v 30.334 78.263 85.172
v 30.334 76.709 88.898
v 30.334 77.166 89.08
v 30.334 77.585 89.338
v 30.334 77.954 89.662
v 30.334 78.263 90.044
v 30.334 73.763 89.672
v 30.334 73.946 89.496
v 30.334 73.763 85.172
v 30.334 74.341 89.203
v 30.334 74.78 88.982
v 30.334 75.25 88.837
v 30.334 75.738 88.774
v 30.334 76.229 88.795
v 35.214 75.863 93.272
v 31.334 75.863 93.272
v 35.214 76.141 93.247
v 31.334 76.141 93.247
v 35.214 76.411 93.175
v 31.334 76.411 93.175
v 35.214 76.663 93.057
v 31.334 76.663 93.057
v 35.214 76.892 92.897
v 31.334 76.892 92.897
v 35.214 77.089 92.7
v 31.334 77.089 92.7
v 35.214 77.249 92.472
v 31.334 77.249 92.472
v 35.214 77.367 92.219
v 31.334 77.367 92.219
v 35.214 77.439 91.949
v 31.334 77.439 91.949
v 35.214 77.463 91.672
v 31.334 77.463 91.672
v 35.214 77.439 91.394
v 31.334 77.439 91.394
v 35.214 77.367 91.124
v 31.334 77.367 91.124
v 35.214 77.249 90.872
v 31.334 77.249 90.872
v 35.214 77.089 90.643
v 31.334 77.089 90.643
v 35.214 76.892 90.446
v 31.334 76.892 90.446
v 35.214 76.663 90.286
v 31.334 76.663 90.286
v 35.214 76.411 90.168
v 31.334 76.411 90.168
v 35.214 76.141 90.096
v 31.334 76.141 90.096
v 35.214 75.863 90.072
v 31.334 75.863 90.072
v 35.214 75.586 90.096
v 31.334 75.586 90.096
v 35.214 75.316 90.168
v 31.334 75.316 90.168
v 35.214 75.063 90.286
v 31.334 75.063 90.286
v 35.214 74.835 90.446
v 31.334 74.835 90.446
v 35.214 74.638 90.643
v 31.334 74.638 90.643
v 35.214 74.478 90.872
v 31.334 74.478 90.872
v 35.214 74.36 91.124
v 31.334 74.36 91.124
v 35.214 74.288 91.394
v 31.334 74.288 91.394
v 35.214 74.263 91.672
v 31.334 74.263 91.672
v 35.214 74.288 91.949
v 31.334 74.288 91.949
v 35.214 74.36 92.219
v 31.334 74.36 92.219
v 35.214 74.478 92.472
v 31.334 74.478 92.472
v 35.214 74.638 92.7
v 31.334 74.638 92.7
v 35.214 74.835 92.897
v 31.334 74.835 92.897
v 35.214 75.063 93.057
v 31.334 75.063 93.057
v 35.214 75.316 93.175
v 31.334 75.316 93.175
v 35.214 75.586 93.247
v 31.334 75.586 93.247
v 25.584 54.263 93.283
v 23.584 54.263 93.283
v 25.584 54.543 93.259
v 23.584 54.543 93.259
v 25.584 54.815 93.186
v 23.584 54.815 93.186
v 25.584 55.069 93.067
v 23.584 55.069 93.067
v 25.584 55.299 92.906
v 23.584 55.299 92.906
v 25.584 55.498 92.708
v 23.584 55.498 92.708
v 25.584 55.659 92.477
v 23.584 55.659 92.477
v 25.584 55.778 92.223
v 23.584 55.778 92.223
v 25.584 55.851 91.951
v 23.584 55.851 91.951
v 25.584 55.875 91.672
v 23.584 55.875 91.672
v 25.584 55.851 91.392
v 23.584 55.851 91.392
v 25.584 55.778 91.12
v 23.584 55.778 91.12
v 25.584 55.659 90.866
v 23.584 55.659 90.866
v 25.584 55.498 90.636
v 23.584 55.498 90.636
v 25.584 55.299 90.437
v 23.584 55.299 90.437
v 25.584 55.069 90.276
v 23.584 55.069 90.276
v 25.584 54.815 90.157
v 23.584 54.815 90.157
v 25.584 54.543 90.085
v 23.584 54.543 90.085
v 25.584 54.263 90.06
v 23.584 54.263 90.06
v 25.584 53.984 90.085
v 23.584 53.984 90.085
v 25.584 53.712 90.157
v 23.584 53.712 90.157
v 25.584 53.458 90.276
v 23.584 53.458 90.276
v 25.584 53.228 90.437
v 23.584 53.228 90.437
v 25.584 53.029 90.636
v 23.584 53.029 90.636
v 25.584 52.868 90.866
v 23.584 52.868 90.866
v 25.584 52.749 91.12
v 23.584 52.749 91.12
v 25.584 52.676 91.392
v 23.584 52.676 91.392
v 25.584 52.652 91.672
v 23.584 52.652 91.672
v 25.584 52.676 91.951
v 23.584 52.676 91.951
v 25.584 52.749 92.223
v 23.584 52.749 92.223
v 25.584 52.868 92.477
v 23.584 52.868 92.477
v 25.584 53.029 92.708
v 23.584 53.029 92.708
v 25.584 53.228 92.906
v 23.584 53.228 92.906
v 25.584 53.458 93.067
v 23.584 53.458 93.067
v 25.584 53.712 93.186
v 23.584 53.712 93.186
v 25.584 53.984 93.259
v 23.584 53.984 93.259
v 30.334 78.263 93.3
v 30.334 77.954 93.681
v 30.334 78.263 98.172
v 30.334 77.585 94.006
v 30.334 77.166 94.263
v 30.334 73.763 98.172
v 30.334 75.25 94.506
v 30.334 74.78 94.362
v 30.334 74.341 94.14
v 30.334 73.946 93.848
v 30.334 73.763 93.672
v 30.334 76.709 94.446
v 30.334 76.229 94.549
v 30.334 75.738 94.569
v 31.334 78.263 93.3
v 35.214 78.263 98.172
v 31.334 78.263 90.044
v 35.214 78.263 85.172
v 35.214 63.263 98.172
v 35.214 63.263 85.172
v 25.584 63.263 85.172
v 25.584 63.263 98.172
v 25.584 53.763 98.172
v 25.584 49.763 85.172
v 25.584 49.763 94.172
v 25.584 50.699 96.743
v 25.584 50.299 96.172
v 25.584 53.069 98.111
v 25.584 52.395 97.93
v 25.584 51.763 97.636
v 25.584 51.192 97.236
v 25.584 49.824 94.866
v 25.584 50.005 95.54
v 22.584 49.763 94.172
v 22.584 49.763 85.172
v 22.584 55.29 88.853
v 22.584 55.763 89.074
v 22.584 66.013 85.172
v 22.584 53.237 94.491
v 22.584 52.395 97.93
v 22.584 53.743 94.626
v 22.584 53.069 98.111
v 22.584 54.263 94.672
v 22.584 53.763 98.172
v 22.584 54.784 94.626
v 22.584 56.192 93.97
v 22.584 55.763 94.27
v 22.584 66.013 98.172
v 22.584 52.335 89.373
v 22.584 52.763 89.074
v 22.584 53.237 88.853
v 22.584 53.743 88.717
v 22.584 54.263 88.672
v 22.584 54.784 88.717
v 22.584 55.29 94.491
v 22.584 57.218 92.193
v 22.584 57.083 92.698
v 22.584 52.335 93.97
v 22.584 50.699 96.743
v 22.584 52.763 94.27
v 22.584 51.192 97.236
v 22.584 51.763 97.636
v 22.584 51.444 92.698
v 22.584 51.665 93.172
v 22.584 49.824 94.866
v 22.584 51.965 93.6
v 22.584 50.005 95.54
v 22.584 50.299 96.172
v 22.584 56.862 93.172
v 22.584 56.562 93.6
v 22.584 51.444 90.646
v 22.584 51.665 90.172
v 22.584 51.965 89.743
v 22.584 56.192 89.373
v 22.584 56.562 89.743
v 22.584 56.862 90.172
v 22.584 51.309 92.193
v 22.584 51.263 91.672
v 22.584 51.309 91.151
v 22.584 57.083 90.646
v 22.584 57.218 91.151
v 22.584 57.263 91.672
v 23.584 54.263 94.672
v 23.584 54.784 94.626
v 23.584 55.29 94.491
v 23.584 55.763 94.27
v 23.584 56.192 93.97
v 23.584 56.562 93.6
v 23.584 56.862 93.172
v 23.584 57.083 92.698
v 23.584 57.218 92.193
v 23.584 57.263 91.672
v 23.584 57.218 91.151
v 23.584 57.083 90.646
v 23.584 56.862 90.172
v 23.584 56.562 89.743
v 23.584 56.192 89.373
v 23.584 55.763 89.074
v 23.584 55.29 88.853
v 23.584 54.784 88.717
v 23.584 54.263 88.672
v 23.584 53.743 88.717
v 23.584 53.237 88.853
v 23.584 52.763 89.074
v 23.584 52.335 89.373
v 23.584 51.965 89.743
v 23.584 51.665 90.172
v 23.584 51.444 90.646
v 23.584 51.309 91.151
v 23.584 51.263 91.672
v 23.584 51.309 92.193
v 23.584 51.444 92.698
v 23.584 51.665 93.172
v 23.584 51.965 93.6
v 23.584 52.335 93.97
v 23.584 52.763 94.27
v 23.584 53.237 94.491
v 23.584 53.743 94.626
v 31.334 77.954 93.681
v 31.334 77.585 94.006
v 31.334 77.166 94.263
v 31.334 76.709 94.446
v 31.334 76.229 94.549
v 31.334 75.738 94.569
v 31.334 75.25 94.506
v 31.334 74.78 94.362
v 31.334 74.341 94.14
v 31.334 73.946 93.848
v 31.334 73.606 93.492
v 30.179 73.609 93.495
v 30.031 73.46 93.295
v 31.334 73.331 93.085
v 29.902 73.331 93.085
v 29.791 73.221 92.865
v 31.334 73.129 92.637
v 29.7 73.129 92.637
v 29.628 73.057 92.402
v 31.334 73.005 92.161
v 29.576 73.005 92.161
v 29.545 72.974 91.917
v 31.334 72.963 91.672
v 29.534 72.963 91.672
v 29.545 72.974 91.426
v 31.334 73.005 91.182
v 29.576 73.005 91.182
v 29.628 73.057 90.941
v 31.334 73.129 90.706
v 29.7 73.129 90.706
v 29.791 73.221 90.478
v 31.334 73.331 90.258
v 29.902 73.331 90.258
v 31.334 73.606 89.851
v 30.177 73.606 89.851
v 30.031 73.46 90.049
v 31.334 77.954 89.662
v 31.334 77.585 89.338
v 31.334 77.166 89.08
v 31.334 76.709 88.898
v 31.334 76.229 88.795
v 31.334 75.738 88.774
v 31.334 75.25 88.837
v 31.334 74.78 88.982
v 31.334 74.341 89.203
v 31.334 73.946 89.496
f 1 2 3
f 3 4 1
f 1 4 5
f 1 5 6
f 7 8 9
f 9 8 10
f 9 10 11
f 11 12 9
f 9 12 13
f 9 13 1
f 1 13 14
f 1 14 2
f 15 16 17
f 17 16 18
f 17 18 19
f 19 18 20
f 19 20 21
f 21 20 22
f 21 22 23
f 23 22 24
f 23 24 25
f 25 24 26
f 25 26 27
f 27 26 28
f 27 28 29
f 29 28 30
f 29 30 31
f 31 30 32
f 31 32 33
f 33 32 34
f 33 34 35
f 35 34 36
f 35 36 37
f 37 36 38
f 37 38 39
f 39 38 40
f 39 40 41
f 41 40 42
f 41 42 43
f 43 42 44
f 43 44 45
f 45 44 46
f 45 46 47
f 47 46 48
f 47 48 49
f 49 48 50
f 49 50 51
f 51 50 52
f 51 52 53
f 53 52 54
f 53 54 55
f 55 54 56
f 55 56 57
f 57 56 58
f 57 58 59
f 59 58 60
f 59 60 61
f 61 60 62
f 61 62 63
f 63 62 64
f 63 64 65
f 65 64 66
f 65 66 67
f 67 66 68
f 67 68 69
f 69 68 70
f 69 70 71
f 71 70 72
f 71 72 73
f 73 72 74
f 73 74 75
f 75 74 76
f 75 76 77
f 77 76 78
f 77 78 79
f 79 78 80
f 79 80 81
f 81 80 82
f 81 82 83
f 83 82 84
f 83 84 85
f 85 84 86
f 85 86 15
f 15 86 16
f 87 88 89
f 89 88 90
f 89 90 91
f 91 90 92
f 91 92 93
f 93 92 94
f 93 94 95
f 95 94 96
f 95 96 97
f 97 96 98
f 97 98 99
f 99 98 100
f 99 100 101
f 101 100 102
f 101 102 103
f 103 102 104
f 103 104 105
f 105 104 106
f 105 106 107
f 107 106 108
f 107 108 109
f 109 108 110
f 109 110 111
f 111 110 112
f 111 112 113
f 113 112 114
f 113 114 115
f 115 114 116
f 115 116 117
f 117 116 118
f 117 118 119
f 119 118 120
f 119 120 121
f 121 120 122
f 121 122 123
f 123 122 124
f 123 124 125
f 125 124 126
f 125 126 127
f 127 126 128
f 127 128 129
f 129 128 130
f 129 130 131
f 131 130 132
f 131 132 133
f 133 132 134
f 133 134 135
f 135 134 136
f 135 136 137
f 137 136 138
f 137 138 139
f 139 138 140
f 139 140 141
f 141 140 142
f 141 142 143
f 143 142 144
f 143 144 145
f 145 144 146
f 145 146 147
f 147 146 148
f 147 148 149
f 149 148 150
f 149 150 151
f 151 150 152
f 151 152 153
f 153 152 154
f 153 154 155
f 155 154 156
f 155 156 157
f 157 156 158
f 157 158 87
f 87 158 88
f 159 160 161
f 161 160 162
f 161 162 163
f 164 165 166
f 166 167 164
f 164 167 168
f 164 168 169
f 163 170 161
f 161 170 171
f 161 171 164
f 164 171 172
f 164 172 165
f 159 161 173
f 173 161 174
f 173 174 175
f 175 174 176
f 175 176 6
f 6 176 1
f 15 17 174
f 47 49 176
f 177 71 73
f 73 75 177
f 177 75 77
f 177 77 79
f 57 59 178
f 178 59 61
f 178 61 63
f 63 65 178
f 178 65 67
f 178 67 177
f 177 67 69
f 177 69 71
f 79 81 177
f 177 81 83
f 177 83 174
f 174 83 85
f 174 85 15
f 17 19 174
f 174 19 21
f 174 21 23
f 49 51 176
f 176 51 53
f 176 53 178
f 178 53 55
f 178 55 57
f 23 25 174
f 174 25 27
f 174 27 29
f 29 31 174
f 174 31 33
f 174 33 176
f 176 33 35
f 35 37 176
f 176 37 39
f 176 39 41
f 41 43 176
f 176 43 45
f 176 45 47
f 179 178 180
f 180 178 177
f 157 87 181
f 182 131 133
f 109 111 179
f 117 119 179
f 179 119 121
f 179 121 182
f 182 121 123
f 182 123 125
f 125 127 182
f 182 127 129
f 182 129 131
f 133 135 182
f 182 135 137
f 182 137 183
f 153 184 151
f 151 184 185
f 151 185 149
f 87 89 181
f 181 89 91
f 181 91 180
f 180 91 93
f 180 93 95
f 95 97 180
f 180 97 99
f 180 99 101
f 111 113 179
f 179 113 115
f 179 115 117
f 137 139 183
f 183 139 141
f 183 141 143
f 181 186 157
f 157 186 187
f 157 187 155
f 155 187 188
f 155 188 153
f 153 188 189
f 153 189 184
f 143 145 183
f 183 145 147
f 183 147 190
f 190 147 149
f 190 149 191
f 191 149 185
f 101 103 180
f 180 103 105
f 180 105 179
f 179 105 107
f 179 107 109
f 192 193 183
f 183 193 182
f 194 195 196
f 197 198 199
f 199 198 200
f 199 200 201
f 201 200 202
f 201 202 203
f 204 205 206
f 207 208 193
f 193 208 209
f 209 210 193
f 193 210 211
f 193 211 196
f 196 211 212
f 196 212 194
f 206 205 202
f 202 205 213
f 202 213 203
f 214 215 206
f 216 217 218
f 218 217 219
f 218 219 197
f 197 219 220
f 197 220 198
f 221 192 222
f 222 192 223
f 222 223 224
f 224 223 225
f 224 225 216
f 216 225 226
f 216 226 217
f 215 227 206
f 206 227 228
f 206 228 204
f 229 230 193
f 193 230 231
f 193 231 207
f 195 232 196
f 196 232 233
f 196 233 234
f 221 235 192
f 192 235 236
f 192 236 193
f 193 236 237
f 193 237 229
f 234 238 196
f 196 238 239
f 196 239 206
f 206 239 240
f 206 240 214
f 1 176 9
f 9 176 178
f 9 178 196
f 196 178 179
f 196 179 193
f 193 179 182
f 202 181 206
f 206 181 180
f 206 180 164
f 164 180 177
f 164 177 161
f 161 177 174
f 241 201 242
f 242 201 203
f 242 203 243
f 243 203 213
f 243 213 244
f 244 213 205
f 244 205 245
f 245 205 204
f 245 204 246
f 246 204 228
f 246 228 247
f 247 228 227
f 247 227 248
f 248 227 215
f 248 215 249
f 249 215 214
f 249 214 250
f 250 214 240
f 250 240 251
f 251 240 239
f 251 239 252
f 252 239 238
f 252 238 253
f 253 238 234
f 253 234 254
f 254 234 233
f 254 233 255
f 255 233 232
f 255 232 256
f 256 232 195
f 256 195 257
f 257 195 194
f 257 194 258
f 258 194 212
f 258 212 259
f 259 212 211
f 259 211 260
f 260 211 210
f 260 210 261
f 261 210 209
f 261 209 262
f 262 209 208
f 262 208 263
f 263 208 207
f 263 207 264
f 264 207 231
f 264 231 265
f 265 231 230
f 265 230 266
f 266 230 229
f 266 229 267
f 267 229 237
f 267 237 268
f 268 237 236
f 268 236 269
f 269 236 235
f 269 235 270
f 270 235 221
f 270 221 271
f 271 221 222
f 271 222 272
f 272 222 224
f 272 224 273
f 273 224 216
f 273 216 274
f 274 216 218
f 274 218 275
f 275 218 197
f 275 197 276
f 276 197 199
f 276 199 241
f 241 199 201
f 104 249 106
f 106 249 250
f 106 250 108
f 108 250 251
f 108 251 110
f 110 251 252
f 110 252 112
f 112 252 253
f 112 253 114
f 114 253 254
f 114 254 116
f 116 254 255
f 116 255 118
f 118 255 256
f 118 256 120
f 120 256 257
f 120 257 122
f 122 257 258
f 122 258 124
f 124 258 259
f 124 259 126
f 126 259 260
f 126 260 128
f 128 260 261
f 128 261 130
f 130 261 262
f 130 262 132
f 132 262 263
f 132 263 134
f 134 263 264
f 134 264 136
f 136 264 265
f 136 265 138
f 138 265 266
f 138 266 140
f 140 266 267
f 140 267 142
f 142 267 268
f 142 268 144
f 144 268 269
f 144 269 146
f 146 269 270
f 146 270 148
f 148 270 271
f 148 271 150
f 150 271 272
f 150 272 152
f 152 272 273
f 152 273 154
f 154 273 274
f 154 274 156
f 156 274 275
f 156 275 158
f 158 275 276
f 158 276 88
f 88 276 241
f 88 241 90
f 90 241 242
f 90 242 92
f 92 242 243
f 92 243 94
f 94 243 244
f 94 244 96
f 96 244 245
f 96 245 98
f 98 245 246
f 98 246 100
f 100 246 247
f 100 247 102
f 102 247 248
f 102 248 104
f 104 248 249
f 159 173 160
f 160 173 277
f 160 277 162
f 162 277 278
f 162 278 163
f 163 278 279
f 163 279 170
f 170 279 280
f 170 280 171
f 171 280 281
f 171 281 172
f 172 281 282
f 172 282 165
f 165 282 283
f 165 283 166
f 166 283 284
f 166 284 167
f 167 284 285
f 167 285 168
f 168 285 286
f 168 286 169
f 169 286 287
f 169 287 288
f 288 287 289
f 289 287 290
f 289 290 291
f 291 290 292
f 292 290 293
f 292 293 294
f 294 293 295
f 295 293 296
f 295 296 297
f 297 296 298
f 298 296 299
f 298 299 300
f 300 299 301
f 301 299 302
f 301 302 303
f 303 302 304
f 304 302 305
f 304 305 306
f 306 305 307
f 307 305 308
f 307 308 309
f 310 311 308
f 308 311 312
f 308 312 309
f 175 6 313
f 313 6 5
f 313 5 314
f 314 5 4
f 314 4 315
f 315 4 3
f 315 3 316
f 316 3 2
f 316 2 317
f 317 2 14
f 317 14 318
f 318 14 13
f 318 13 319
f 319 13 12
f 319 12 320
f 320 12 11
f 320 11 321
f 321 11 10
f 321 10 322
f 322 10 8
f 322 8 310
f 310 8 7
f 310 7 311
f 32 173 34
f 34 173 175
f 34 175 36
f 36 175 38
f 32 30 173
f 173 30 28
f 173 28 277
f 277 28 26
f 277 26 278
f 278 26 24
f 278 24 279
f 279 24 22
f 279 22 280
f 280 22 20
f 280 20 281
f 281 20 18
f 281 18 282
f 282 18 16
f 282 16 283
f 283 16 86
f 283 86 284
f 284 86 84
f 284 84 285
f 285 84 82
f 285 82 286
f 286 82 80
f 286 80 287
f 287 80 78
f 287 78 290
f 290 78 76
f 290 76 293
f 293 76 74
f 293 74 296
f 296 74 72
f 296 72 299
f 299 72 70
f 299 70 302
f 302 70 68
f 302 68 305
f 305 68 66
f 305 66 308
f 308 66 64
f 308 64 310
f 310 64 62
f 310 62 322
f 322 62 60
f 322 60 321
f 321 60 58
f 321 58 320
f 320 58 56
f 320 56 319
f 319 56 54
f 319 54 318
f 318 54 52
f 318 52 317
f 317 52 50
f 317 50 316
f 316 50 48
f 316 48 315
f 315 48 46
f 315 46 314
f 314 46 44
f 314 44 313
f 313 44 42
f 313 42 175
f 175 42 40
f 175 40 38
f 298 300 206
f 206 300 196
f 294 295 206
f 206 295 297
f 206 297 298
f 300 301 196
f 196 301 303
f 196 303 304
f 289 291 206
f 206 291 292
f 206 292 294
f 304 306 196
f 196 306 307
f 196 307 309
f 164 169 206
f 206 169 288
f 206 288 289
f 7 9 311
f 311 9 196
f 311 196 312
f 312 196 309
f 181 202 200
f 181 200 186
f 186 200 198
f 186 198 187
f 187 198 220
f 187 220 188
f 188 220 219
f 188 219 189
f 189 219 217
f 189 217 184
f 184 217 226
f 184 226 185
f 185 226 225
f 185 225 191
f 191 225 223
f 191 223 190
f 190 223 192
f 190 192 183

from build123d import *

# Parameters (mm, degrees)
BOSS_EXTRUDE1_DEPTH     = 13
CUT_EXTRUDE1_DEPTH      = 10
CUT_EXTRUDE1_DEPTH_BACK = 30
SKETCH2_R               = 1.6
SKETCH2_R_2             = 1.611537585
SKETCH3_R               = 3
CUT_EXTRUDE2_DEPTH      = 1
SKETCH4_R               = 2.9
CUT_EXTRUDE3_DEPTH      = 1
CHAMFER1_SIZE           = 10
FILLET1_R               = 4


with BuildPart() as part:
    # Sketch1 → Boss-Extrude1 (new body)
    with BuildSketch(Plane.XY.offset(98.171636097)):
        Polygon((30.334370899, 78.263460463), (35.214370899, 78.263460463), (35.214370899, 65.863460463), (35.214370899, 63.263460463), (25.584370899, 63.263460463), (25.584370899, 49.763460463), (22.584370899, 49.763460463), (22.584370899, 63.263460463), (22.584370899, 63.763460463), (30.334370899, 63.763460463), align=None)
    extrude(amount=-BOSS_EXTRUDE1_DEPTH)

    # Sketch2 → Cut-Extrude1 (cut, two sides: drawn at the far end of the back side and taken through both)
    with BuildSketch(Plane(origin=(35.214370899, 0, 0), x_dir=(0, 0, -1), z_dir=(1, 0, 0)).offset(-CUT_EXTRUDE1_DEPTH_BACK)):
        with Locations(Location((-91.671636097, 75.863460463, 0), (0, 0, 180))):
            Circle(SKETCH2_R)
        with Locations(Location((-91.671636097, 54.263460463, 0), (0, 0, 180))):
            Circle(SKETCH2_R_2)
    extrude(amount=CUT_EXTRUDE1_DEPTH + CUT_EXTRUDE1_DEPTH_BACK, mode=Mode.SUBTRACT)

    # Sketch3 → Cut-Extrude2 (cut)
    with BuildSketch(Plane.ZY.offset(-22.584370899)):
        with Locations((91.671636097, 54.263460463)):
            Circle(SKETCH3_R)
    extrude(amount=-CUT_EXTRUDE2_DEPTH, mode=Mode.SUBTRACT)

    # Sketch4 → Cut-Extrude3 (cut)
    with BuildSketch(Plane.ZY.offset(-30.334370899)):
        with Locations((91.671636097, 75.863460463)):
            Circle(SKETCH4_R)
    extrude(amount=-CUT_EXTRUDE3_DEPTH, mode=Mode.SUBTRACT)

    # Chamfer1
    # the kernel refuses this chamfer: 10 mm, written as the material it adds along each edge
    with BuildSketch(Plane(origin=(30.334370899, 63.763460463, 98.171636097), x_dir=(0.027495876610586337, 0.9996219169112968, 0), z_dir=(0, 0, -1))) as chamfer1_piece_1_section:
        Polygon((CHAMFER1_SIZE * 0.999621916911, -CHAMFER1_SIZE * 0.0274958766106), (-CHAMFER1_SIZE * 0.0274958766106, -CHAMFER1_SIZE * 0.999621916911), (0, 0), align=None)
    chamfer1_piece_1 = extrude(amount=13, mode=Mode.PRIVATE)
    chamfer1_piece_1 = chamfer1_piece_1 - Plane(origin=(27.388550815, 75.863460463, 91.671636097), x_dir=(0, 0, 1), z_dir=(-1, 0, 0)) * Cylinder(2.9, 66, mode=Mode.PRIVATE)
    chamfer1_piece_1 = split(chamfer1_piece_1, bisect_by=Plane(origin=(22.584370899, 67.23157259, 91.671636099), z_dir=(1, 0, 0)), keep=Keep.TOP, mode=Mode.PRIVATE)
    add(chamfer1_piece_1)

    # Fillet1
    fillet1_edges = [part.edges().sort_by_distance(p)[0] for p in [
        (24.084370899, 49.763460463, 98.171636097),
    ]]
    fillet(fillet1_edges, radius=FILLET1_R)


solid = part.part
